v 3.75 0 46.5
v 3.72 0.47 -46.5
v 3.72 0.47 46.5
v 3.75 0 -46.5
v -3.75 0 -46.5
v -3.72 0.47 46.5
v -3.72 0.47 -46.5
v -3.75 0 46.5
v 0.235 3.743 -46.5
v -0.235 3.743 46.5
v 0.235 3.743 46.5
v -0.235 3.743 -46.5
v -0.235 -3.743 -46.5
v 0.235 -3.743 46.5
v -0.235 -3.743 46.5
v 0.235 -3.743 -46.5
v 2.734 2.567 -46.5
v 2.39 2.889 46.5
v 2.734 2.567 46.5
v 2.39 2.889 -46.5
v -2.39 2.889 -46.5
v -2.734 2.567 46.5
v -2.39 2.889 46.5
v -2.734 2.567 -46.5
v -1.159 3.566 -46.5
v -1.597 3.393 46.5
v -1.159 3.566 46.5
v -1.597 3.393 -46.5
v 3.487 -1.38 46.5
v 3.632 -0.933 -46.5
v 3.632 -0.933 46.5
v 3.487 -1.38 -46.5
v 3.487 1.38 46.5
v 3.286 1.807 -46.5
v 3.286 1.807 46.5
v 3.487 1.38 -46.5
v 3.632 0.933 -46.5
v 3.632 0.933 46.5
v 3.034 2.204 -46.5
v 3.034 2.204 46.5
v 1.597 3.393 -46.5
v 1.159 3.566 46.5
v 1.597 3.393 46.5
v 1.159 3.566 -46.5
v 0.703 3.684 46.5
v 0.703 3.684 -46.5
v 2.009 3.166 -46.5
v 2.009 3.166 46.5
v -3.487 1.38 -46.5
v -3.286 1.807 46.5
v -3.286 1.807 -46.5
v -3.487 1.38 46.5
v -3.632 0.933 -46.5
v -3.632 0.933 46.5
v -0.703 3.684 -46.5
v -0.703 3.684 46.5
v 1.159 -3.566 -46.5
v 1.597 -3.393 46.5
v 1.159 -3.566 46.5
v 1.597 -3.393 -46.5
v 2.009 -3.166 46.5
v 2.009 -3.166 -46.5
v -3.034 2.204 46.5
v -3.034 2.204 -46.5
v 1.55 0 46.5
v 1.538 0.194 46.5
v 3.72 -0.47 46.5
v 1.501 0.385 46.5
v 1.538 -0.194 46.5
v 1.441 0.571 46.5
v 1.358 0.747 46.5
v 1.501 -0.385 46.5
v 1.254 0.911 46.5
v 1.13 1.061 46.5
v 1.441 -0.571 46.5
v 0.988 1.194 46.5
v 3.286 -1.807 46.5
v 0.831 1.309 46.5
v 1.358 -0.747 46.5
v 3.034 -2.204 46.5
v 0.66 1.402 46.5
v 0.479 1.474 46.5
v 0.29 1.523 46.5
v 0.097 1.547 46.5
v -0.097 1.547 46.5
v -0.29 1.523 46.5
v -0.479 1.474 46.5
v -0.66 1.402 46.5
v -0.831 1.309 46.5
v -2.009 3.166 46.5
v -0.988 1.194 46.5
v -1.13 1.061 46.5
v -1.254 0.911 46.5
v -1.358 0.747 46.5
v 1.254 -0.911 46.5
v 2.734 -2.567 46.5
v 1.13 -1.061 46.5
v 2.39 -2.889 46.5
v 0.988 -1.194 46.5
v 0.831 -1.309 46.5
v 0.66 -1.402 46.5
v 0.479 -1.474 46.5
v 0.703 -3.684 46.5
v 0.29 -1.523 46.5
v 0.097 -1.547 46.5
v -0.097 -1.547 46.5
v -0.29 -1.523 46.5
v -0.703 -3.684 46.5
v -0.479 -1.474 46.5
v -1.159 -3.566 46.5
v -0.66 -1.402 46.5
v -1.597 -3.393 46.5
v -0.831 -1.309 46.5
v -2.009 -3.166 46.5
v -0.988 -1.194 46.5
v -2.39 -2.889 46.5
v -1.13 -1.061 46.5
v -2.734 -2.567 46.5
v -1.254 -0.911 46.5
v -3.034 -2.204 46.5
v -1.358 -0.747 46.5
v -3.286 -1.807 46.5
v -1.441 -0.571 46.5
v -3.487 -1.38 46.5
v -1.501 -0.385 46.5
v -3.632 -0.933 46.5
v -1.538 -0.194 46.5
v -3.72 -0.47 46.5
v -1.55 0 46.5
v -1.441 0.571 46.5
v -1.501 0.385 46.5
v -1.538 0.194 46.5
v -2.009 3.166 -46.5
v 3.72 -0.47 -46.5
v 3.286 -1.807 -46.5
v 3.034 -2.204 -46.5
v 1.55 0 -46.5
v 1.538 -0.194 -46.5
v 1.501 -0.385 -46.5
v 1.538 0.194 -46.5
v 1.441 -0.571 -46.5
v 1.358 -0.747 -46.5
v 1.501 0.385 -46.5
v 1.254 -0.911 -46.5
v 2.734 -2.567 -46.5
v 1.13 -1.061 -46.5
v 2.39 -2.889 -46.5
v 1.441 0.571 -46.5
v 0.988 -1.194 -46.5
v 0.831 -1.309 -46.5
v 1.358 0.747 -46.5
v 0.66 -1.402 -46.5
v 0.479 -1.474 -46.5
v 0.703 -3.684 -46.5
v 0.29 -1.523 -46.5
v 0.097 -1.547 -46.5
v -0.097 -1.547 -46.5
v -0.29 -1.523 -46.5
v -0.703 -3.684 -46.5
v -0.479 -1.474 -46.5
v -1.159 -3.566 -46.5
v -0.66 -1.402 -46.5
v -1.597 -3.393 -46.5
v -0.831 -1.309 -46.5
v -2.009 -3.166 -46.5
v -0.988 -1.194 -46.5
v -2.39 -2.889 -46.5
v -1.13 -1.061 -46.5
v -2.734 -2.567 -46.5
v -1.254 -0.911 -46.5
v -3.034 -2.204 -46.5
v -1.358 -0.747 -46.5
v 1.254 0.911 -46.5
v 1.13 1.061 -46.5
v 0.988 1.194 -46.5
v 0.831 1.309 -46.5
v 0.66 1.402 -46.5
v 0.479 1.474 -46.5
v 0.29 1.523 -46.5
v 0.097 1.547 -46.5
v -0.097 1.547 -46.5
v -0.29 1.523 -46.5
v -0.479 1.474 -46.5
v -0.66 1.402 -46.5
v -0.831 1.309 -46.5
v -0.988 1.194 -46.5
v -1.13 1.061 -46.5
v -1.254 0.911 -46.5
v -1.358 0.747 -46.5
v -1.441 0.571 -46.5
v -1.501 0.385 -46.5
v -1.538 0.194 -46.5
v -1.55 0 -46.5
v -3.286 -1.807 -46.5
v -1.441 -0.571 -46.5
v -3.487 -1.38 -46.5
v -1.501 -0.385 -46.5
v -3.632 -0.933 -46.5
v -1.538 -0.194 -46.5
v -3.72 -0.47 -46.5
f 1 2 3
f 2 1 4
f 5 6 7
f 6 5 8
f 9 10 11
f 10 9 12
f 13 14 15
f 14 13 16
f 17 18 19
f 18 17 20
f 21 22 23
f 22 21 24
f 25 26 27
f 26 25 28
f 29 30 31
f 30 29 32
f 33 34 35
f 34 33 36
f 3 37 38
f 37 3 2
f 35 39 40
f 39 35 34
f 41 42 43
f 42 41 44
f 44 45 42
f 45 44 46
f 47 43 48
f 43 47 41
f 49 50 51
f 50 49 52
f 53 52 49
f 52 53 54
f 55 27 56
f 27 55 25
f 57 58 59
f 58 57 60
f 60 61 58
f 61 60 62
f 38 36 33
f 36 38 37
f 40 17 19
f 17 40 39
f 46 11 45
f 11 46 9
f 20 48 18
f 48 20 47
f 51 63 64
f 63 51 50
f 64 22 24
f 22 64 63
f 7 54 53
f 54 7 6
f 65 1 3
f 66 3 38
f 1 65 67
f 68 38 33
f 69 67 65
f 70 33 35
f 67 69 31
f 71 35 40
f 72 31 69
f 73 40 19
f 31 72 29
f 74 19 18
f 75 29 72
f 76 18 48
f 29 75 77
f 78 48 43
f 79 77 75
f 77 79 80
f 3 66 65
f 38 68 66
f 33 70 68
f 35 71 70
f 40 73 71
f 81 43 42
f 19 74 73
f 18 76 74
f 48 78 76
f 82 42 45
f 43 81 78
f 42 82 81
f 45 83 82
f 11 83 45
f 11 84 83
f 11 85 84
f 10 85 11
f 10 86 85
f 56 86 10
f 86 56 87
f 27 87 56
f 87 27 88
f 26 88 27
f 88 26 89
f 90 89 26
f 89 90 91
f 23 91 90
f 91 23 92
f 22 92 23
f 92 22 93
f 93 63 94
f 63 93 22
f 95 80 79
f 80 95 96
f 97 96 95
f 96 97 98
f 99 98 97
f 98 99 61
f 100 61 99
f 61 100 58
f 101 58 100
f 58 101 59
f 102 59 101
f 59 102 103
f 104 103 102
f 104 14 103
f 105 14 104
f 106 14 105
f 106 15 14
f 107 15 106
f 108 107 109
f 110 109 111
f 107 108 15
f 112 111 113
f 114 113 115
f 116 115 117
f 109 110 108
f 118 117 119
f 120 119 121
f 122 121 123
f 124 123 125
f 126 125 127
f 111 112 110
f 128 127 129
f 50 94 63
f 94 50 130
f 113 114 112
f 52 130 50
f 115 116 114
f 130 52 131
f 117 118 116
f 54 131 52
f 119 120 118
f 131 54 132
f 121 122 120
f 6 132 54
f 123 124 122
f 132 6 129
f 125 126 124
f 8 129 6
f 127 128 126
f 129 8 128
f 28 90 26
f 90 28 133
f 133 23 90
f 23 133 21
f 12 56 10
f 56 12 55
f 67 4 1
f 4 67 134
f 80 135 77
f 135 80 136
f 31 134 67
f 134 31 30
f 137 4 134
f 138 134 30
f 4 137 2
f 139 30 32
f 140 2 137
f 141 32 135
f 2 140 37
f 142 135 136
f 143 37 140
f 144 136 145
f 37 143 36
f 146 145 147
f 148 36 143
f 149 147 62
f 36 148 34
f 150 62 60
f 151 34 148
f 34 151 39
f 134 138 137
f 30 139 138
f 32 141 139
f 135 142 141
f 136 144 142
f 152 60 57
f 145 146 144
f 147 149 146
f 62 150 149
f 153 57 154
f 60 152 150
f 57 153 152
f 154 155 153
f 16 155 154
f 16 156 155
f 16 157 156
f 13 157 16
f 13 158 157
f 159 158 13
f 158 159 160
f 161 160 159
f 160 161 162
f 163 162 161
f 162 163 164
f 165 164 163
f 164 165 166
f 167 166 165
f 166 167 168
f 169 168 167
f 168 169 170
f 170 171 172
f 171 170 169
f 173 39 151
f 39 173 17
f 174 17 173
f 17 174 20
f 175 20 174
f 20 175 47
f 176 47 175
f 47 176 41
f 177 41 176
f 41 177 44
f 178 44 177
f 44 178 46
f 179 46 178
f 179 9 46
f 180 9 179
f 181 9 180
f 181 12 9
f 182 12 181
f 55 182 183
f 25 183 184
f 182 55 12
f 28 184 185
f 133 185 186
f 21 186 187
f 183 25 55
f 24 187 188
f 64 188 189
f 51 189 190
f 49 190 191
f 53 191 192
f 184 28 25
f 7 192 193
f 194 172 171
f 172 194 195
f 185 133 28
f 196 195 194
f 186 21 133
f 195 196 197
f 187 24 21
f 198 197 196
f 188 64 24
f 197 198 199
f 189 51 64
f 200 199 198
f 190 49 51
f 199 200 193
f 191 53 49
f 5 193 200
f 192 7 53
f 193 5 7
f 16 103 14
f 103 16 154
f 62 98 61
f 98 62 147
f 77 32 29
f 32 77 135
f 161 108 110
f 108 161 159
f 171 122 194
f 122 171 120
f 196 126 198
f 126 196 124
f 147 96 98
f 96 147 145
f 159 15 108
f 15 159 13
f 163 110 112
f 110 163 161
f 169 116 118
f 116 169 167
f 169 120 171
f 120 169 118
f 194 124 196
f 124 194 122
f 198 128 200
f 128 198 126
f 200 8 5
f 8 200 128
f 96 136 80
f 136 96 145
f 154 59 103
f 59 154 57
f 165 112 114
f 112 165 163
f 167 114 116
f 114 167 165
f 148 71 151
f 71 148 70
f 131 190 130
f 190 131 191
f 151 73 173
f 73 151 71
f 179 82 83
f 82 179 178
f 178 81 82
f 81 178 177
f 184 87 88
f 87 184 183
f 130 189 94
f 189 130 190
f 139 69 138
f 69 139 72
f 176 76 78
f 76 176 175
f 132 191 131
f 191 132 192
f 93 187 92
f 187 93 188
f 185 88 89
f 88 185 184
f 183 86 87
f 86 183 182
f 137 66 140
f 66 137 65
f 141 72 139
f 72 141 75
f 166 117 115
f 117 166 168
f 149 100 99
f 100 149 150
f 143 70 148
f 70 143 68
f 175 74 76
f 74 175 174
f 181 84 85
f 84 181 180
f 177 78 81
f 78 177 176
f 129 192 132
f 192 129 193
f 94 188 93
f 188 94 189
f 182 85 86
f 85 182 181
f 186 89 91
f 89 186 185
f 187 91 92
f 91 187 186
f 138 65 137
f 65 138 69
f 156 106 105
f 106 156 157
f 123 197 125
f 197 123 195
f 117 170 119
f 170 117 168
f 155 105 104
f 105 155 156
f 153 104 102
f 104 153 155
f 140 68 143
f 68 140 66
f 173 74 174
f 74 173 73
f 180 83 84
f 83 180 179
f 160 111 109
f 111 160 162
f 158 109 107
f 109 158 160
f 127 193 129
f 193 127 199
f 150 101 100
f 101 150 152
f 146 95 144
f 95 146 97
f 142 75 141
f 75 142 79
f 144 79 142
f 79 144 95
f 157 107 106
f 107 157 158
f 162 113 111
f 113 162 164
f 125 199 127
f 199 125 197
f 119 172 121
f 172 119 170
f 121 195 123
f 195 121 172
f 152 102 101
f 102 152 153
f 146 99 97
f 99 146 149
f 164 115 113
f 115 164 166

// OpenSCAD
$fn = 50;


difference() {
	union() {
		translate(v = [0, 0, -46.5000000000]) {
			cylinder(h = 93, r = 3.7500000000);
		}
	}
	union() {
		translate(v = [0, 0, -100.0000000000]) {
			cylinder(h = 200, r = 1.5500000000);
		}
	}
}
